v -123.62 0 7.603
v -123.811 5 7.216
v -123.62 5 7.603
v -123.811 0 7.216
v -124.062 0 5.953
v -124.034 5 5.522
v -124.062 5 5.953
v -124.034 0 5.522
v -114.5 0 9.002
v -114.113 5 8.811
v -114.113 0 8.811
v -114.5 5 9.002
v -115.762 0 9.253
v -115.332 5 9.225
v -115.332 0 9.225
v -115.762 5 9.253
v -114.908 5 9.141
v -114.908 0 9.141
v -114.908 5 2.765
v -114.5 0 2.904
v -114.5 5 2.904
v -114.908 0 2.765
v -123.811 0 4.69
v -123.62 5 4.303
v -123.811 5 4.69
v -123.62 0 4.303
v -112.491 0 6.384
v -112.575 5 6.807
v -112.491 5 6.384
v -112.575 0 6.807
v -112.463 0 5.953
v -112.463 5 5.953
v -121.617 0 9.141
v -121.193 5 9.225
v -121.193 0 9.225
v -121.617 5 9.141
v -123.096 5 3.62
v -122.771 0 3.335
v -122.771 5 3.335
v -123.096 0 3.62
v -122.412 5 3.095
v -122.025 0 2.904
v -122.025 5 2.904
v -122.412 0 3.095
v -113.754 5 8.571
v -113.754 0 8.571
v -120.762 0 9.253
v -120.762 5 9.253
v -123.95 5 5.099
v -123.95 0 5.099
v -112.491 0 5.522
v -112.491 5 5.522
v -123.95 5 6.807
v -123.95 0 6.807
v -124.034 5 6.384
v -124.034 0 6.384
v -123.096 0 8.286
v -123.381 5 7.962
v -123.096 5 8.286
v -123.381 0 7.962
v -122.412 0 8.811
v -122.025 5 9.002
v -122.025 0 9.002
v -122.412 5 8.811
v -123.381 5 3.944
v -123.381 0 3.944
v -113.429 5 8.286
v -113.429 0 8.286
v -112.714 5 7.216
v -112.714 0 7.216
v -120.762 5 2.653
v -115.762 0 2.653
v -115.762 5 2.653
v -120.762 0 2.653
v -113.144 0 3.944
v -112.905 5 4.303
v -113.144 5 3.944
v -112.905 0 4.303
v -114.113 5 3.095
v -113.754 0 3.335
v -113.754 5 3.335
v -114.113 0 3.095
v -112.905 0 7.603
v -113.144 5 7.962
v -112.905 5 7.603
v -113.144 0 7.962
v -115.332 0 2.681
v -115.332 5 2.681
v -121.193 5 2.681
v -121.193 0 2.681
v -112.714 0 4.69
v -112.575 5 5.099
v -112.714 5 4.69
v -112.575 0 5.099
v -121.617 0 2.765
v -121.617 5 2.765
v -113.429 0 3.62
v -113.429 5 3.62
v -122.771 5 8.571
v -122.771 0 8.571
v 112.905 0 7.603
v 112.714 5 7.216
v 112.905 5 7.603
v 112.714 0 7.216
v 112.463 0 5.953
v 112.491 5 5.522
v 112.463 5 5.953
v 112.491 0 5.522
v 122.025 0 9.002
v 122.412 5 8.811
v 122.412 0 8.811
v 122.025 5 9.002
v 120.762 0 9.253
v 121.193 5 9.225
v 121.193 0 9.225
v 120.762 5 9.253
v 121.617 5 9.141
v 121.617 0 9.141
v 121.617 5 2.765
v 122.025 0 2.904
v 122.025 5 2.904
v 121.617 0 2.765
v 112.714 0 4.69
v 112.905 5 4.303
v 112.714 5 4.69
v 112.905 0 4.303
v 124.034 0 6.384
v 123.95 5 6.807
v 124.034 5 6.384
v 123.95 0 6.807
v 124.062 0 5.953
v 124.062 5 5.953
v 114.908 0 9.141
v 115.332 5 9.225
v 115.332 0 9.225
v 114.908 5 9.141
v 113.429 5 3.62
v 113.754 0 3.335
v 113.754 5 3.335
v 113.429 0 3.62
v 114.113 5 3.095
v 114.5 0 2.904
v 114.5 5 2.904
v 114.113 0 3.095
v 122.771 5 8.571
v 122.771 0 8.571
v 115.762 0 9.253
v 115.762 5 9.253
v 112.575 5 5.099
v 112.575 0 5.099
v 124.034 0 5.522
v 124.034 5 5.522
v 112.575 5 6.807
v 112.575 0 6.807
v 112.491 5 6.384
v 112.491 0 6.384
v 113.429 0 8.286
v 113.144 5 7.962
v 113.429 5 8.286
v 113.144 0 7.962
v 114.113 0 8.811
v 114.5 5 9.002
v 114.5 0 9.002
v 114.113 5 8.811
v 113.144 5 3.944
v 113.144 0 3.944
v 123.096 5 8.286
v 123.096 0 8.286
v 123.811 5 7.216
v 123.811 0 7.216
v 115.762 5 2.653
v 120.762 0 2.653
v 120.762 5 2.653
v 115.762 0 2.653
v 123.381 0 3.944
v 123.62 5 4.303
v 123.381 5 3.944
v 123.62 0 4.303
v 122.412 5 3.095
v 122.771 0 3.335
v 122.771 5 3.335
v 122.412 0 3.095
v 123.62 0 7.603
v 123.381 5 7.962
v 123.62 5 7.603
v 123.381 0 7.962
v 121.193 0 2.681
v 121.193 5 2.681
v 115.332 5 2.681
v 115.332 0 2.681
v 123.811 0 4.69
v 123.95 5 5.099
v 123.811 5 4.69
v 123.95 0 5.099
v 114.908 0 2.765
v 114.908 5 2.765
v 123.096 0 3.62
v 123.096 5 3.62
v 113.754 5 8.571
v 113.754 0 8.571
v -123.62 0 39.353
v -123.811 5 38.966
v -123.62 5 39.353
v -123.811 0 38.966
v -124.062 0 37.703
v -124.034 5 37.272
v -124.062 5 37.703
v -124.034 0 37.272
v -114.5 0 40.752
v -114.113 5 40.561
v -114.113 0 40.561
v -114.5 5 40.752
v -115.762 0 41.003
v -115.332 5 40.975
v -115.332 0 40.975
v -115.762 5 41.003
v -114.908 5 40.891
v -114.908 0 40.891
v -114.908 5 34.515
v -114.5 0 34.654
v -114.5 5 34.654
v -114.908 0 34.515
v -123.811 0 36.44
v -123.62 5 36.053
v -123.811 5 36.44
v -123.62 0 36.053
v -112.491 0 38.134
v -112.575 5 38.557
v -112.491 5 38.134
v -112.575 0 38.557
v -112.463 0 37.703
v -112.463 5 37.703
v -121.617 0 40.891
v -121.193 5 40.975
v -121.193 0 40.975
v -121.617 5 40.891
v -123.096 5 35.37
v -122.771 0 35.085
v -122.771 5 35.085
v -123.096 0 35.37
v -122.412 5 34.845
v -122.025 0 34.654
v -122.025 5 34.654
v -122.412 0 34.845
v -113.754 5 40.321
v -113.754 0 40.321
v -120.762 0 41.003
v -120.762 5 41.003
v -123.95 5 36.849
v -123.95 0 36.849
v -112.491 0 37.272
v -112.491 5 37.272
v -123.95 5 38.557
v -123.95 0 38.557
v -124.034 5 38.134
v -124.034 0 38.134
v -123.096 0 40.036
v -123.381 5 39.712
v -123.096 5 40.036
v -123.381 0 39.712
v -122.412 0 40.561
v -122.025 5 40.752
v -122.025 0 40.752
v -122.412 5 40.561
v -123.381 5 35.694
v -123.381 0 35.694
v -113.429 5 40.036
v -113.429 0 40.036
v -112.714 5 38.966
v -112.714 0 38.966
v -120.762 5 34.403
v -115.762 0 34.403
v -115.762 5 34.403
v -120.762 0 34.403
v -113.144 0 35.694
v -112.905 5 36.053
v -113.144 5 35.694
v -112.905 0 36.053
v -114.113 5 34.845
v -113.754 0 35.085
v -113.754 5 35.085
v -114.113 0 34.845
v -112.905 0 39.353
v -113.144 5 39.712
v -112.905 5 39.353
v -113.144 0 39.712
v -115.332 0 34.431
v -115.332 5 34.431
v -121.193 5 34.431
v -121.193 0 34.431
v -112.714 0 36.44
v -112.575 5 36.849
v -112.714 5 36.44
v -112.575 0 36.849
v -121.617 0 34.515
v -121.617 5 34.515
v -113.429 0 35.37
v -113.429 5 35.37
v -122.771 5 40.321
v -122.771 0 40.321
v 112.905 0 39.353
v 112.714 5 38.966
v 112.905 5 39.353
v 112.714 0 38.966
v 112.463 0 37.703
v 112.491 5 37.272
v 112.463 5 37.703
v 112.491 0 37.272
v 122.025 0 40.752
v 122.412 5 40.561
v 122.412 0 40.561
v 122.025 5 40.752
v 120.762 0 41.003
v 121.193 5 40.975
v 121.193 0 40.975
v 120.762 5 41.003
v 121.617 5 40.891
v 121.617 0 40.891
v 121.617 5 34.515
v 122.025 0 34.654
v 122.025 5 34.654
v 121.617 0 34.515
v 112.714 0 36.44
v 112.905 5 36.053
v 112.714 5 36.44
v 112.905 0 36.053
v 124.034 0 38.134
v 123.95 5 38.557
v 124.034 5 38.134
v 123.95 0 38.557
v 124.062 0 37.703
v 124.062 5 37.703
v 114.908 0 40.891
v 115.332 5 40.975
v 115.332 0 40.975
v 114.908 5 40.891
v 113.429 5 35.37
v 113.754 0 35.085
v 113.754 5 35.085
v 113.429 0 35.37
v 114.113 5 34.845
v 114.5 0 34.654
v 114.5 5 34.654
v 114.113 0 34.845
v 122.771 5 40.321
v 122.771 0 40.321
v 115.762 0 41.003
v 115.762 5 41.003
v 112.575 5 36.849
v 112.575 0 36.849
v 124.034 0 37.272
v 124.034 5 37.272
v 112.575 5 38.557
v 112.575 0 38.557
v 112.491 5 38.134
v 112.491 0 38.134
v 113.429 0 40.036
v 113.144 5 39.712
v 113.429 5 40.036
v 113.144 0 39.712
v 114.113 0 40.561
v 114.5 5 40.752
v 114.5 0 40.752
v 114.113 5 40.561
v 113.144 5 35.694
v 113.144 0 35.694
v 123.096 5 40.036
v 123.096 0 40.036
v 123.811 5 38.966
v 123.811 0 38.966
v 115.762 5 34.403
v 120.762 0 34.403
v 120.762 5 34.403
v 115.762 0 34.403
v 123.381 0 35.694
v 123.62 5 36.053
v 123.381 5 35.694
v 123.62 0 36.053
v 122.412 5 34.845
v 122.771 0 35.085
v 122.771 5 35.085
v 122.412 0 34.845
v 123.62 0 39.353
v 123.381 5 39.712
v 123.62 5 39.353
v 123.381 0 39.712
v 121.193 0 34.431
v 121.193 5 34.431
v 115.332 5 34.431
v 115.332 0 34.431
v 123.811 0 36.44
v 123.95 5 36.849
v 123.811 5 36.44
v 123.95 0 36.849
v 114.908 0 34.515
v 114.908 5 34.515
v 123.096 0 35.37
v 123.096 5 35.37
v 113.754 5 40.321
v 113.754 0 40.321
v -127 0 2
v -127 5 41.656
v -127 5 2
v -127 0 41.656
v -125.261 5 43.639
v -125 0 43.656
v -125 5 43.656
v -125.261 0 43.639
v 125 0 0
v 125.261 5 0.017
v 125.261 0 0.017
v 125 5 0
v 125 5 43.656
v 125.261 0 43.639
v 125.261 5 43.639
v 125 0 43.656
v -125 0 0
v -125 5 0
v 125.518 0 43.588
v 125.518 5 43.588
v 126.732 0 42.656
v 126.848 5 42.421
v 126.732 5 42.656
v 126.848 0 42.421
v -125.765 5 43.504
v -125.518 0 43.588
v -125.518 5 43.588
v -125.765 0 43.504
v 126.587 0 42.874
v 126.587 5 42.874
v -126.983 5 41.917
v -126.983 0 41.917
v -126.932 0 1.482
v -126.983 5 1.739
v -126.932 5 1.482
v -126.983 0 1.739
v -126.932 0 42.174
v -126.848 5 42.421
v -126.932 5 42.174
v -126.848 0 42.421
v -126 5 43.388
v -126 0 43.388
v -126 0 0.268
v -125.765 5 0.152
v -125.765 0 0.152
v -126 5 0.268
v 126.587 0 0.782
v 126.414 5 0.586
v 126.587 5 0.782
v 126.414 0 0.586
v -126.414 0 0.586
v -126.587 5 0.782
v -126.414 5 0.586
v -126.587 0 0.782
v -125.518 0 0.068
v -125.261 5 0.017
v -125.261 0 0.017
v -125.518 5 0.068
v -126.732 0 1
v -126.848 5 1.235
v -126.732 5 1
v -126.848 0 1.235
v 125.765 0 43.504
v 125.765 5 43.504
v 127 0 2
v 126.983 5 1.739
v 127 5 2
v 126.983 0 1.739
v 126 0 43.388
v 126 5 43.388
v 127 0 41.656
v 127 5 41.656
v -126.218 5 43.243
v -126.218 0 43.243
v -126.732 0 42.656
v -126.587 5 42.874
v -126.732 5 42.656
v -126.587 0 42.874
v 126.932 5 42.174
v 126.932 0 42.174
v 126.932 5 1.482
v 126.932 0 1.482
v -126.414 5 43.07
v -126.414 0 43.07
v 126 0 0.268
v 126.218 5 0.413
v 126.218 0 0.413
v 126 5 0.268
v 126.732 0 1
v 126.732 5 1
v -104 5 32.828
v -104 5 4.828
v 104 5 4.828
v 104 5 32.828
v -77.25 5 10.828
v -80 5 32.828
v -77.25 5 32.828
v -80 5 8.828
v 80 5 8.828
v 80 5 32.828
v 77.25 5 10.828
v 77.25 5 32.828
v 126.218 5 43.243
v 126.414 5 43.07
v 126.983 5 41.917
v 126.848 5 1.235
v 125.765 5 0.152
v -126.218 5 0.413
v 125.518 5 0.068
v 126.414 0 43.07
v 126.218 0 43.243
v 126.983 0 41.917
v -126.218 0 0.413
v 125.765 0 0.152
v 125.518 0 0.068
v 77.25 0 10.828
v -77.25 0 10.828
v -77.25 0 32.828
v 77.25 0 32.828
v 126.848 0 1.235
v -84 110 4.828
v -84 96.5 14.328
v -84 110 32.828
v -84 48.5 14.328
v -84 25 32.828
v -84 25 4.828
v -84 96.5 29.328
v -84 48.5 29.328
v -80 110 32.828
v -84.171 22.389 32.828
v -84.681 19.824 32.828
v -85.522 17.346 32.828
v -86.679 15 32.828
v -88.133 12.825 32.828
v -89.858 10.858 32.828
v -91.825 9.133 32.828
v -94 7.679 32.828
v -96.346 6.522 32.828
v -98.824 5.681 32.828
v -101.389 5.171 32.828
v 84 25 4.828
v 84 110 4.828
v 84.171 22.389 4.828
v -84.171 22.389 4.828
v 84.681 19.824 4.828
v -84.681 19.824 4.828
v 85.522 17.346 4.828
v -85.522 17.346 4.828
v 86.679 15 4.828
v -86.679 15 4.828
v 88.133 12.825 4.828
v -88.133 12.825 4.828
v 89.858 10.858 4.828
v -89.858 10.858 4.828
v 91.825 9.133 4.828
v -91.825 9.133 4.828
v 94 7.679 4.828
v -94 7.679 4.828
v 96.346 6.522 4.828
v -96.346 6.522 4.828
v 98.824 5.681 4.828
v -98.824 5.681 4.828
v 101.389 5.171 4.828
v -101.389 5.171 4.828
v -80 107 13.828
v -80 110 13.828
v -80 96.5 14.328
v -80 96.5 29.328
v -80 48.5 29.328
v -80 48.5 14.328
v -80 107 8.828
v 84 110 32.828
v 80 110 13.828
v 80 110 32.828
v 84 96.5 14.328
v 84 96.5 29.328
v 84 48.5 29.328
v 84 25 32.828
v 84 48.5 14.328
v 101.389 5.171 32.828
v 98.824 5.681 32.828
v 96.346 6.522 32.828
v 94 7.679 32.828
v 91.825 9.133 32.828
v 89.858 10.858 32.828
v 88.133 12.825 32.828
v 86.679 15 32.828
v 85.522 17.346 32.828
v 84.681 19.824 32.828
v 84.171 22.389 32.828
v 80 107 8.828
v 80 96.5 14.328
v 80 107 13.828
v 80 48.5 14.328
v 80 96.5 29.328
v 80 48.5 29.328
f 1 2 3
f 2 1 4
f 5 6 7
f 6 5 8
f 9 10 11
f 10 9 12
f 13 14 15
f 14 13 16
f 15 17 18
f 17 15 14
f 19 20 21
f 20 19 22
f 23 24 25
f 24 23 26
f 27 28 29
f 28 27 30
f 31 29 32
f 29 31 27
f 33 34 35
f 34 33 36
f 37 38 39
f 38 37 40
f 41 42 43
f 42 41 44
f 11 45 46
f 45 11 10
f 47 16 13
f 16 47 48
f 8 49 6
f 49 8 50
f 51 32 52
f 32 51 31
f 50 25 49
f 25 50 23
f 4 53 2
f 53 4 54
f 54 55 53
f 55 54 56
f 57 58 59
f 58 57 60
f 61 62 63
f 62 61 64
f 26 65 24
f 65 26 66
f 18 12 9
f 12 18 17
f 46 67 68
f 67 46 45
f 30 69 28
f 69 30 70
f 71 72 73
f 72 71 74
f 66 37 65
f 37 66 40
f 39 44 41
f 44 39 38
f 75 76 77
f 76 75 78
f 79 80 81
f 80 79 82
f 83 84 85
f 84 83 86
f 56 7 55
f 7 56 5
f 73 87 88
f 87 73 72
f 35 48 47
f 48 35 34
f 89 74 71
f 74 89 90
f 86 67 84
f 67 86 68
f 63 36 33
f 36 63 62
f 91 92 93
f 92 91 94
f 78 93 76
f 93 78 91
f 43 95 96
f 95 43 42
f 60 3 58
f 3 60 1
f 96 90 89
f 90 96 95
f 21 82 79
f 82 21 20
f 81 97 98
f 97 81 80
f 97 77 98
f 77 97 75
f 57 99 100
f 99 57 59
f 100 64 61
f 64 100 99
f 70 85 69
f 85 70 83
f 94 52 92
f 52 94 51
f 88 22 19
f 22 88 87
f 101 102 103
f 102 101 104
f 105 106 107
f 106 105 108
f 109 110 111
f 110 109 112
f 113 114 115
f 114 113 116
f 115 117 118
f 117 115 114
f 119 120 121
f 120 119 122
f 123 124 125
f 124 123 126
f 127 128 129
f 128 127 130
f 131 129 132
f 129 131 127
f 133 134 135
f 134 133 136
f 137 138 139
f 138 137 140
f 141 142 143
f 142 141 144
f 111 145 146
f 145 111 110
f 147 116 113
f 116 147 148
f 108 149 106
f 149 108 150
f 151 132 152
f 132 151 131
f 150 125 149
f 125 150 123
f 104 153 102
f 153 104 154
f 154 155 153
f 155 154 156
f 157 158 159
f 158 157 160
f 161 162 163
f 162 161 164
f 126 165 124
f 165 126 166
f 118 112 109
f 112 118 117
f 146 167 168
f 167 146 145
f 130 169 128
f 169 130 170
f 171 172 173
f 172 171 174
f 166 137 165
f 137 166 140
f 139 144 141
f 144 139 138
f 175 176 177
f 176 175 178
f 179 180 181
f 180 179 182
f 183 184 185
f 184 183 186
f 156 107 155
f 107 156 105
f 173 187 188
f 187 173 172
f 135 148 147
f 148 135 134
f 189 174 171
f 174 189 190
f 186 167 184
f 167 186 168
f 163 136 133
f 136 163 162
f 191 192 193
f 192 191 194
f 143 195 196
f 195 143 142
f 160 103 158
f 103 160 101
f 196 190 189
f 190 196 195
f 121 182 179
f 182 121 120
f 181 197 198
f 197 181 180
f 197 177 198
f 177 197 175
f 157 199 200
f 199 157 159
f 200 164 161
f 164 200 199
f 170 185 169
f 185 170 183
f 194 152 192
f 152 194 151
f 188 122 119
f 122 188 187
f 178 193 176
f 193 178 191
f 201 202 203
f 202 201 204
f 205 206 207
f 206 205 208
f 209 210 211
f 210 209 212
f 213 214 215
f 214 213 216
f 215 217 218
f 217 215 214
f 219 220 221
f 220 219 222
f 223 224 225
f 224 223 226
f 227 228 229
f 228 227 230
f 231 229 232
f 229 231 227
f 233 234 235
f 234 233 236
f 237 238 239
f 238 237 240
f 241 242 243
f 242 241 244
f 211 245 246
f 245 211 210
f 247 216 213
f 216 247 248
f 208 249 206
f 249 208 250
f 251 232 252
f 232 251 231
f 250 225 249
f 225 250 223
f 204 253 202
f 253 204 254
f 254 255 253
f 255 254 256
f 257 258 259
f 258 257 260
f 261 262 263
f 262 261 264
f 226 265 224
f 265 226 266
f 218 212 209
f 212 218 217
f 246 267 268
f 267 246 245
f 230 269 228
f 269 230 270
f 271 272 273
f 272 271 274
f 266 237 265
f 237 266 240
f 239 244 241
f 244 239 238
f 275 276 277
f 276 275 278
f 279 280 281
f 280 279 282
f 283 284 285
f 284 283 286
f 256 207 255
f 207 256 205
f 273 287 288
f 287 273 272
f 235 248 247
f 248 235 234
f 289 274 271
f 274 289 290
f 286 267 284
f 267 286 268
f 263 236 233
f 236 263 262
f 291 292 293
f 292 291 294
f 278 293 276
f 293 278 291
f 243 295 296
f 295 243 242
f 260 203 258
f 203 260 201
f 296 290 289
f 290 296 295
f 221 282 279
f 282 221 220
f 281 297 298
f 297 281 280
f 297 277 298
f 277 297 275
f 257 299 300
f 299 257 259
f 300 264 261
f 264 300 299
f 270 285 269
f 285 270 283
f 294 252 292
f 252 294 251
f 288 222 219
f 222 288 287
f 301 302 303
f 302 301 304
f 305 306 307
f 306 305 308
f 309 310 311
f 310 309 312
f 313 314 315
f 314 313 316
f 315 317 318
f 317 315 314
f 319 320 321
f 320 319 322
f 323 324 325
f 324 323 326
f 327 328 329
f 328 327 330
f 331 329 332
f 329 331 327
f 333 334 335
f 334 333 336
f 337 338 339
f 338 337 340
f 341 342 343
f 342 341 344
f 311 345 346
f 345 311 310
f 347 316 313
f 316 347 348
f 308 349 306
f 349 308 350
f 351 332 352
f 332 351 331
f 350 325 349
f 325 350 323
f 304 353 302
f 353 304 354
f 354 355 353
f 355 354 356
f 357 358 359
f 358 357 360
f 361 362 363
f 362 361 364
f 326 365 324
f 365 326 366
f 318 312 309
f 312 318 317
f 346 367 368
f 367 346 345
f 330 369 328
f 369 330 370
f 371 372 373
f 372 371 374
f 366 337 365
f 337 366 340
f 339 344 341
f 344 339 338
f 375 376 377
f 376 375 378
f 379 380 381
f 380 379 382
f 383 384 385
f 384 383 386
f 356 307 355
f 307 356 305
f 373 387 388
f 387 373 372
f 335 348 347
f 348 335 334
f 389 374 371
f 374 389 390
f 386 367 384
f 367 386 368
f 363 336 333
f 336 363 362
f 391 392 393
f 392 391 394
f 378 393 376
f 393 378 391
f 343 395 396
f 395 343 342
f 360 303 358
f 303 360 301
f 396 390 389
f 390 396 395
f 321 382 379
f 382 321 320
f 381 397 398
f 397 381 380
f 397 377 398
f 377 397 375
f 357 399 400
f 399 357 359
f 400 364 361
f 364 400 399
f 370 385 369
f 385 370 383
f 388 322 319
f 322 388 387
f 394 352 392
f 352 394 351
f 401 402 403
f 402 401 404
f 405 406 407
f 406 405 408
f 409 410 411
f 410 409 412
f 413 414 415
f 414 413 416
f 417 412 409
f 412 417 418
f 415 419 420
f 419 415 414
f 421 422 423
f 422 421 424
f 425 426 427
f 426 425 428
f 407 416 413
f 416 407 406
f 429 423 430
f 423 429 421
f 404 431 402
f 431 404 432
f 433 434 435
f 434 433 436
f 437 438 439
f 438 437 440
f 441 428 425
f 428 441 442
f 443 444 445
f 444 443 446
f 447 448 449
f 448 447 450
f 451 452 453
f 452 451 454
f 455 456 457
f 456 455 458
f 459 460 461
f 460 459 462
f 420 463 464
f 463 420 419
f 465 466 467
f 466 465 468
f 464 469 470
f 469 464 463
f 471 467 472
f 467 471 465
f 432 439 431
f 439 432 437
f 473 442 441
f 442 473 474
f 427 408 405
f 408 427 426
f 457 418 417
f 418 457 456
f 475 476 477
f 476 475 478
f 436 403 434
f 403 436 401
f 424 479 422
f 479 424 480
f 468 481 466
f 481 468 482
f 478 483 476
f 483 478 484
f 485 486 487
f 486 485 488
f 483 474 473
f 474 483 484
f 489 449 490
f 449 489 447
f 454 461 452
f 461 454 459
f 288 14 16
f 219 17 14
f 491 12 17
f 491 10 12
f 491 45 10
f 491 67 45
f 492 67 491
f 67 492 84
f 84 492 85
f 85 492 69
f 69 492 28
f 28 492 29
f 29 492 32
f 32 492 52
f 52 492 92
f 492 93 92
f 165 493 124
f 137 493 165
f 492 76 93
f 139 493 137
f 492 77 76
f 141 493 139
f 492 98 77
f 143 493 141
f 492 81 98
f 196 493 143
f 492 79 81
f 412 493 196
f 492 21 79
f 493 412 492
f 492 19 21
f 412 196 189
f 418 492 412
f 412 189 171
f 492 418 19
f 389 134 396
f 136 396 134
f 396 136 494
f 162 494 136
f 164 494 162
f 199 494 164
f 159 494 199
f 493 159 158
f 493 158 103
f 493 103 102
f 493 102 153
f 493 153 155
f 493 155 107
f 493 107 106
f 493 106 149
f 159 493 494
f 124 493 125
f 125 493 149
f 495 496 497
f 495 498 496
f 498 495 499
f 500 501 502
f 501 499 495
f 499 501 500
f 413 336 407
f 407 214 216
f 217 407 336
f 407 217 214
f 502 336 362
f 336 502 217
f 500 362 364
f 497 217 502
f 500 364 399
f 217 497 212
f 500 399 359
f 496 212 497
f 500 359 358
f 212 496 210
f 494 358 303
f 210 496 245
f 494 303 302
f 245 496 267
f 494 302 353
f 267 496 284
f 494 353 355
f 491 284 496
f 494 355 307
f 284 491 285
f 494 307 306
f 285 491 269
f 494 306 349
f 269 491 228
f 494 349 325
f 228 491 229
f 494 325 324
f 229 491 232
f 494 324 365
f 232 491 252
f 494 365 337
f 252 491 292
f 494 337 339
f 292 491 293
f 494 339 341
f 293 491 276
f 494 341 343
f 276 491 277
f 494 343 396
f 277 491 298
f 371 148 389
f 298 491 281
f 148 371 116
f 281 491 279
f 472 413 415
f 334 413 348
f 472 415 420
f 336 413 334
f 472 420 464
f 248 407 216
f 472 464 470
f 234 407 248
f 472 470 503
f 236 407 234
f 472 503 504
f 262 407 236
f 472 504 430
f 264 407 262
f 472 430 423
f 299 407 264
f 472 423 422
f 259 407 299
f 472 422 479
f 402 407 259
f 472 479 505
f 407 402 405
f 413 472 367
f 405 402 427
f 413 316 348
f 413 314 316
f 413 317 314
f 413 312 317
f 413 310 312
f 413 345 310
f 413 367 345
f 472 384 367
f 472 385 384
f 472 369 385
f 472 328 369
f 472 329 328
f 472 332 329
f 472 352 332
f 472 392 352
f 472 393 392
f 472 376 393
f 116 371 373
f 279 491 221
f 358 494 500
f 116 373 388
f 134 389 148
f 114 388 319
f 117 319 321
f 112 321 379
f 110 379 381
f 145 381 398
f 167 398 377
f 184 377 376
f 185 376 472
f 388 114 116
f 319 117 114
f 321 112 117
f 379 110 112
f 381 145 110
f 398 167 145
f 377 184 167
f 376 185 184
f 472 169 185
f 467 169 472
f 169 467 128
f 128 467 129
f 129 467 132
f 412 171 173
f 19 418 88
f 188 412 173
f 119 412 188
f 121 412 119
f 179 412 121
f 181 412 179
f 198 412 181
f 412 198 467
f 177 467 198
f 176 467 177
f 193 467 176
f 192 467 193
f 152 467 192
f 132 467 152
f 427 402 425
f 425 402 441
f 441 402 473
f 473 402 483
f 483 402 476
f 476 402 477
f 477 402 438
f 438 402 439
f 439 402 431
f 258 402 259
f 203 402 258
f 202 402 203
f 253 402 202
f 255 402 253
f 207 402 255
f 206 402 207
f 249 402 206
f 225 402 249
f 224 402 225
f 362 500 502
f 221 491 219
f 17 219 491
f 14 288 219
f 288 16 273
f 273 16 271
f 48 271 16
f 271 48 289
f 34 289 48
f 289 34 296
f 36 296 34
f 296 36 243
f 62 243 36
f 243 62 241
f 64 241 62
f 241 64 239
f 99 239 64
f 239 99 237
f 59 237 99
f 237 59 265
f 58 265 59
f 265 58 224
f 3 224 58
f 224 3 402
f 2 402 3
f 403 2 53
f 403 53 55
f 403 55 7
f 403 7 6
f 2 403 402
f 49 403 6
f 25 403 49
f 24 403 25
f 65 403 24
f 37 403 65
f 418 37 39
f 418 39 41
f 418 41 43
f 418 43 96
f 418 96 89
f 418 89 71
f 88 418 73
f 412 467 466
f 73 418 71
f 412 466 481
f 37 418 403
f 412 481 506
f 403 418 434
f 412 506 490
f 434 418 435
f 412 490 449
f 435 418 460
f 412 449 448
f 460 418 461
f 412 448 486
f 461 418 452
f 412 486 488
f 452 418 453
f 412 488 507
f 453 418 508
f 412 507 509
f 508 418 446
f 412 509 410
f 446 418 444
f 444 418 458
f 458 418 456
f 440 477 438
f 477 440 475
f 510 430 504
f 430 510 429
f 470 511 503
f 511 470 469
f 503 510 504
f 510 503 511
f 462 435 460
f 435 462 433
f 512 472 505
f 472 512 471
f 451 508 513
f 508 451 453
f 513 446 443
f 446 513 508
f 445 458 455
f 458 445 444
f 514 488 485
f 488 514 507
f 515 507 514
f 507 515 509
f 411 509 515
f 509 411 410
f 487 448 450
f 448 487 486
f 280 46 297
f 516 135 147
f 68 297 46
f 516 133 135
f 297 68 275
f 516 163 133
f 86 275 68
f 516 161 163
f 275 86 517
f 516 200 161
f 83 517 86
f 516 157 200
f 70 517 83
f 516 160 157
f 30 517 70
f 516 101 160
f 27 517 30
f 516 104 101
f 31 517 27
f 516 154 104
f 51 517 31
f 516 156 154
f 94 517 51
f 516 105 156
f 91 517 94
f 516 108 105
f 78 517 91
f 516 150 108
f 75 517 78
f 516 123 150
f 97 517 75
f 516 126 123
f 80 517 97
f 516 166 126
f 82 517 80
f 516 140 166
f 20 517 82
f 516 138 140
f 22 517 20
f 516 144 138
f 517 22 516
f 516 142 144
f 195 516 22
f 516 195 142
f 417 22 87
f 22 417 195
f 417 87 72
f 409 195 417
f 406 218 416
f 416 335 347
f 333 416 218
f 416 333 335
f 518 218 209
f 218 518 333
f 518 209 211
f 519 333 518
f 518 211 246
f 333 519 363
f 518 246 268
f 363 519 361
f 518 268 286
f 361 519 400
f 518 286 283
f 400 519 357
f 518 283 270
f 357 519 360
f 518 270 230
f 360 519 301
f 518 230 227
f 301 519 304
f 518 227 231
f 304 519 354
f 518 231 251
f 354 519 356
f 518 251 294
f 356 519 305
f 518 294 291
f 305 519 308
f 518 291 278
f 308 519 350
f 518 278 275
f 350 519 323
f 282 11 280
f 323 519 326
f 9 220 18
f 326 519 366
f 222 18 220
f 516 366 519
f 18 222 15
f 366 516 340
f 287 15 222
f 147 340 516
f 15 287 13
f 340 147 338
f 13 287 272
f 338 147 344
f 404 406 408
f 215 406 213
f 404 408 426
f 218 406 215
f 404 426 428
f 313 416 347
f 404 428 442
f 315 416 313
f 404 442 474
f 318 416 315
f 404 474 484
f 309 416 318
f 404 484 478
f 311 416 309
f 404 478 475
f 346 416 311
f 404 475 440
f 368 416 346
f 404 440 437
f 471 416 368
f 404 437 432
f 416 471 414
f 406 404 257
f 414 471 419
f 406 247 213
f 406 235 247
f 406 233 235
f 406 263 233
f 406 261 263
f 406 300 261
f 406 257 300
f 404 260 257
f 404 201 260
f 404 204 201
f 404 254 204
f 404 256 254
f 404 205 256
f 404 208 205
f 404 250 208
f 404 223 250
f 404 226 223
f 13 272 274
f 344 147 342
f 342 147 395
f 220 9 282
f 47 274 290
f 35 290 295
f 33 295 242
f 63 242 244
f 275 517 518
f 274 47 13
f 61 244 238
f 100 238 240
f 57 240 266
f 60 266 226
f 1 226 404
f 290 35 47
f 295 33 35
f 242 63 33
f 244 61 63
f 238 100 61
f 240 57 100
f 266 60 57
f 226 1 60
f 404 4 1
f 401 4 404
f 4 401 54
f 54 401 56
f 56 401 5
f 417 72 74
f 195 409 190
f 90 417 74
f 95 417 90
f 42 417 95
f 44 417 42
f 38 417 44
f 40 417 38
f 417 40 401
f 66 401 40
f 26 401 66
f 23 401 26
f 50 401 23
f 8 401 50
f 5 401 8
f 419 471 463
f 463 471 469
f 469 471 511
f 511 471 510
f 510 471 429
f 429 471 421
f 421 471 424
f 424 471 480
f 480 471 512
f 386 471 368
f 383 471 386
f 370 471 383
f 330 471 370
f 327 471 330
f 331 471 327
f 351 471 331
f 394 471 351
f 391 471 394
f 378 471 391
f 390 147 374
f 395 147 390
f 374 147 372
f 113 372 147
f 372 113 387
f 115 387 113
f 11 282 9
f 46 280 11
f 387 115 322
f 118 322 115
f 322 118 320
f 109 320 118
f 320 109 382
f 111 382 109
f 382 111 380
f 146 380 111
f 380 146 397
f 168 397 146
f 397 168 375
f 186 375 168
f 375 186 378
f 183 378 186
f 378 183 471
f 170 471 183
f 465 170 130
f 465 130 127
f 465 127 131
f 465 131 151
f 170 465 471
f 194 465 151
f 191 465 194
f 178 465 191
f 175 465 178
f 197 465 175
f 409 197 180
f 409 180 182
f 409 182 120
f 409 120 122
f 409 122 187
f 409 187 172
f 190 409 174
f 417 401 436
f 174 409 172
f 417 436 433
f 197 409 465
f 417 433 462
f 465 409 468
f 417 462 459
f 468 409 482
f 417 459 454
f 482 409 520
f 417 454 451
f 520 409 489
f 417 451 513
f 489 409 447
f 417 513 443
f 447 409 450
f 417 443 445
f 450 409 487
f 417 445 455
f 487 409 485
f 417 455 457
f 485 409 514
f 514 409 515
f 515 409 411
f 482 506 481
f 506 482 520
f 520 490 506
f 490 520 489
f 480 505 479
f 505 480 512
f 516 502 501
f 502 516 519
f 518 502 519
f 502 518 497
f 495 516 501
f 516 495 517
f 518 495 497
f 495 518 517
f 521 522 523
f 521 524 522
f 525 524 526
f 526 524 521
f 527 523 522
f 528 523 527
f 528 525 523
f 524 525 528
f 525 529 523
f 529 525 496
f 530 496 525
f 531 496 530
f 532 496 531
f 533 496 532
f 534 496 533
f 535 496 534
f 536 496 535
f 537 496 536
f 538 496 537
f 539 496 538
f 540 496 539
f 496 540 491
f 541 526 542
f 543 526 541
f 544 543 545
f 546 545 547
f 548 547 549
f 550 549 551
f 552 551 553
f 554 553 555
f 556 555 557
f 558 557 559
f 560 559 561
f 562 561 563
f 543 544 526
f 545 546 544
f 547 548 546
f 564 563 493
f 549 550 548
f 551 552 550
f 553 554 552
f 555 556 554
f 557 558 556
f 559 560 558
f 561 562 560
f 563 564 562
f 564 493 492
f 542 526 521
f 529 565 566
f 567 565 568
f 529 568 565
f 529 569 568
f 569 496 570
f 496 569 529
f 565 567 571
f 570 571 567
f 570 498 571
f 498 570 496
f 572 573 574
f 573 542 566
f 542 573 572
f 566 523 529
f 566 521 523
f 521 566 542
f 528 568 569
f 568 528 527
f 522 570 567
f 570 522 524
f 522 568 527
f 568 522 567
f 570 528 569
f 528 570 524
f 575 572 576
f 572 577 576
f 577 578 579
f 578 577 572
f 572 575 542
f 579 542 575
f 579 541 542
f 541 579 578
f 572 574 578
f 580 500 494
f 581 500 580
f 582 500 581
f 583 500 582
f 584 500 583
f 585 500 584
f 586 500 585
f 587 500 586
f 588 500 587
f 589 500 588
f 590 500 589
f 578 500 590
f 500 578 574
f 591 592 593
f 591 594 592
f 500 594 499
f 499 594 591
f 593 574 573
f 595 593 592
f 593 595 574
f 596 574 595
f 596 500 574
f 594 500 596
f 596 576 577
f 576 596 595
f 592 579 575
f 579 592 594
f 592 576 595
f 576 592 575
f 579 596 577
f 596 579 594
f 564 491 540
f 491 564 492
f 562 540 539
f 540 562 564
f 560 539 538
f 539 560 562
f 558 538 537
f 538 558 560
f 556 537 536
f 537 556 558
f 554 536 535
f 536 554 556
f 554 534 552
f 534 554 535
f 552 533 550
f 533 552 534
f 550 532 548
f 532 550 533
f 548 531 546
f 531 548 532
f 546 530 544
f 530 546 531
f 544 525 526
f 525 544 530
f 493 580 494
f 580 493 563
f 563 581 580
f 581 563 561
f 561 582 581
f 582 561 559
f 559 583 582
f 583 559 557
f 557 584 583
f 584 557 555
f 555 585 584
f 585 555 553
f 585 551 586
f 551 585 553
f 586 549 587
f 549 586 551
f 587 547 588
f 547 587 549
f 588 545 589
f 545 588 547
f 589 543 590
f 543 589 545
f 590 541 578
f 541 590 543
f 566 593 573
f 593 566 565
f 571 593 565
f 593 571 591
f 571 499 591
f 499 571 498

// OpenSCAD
// Mounting bracket for a Netgear GS308 in a 10" benchtop rack, 1U.
// Geometry comes from ../lib/rack10.scad; this file only holds the GS308 numbers.
//
//   * 5 mm front panel, one U tall, M6 slots 5 mm wider than needed.
//   * Aperture 1 mm smaller than the switch on every side.
//   * Shelf with side fins; the fins have a window where the GS308 has its
//     ventilation holes (45..90 mm from the front, vertically centred, 12 mm tall).
//   * A low fixed lip across the rear of the shelf stops the switch sliding back
//     when cables are pushed into the front ports. The switch is dropped in from
//     above and lifted straight out. Remove the rubber feet.
//
// Print with the front panel face down on the bed (print_orientation = true).

use <../lib/rack10.scad>

/* [GS308] */
unit_w = 158.5;
unit_h = 26;
unit_d = 101;
vent_front = 45;            // ventilation holes start, measured from the front
vent_back = 90;             // ventilation holes end, measured from the front
vent_h = 12;                // ventilation holes height, vertically centred

/* [Bracket] */
rack_u = 1;
lip = 2;                    // panel overlaps the switch by this much on each side
side_clear = 0.75;          // clearance between switch and each side wall
rear_clear = 1.0;           // clearance between switch and the rear stop
shelf_t = 4;                // shelf thickness
wall_t = 4;                 // side wall thickness
wall_above_shelf = 24;      // side wall height above the shelf top
wall_bottom = 0.5;          // side walls extend down to this z (stiffens the shelf)
vent_margin = 1.5;          // vent window is this much bigger than the vent, all round
fillet_r = 20;               // fillet between the outside of each side wall and the panel (0: none)
rear_stop_t = 3;            // rear lip thickness
rear_stop_h = 5;            // rear lip height above the shelf (0 for none)

/* [Rendering] */
print_orientation = false;  // true: lay the bracket with the front panel on the bed
show_unit = false;          // ghost of the GS308 for checking fit
$fn = 48;

unit = [unit_w, unit_d, unit_h];

print_oriented(print_orientation) {
    shelf_bracket(unit, rack_u = rack_u, lip = lip,
                  side_clear = side_clear, rear_clear = rear_clear,
                  shelf_t = shelf_t, wall_t = wall_t,
                  wall_above_shelf = wall_above_shelf, wall_bottom = wall_bottom,
                  rear_stop_t = rear_stop_t, rear_stop_h = rear_stop_h,
                  fillet_r = fillet_r,
                  vents = [[vent_front, vent_back, unit_h / 2, vent_h]],
                  vent_margin = vent_margin);
    if (show_unit) unit_ghost(unit, rack_u);
}
